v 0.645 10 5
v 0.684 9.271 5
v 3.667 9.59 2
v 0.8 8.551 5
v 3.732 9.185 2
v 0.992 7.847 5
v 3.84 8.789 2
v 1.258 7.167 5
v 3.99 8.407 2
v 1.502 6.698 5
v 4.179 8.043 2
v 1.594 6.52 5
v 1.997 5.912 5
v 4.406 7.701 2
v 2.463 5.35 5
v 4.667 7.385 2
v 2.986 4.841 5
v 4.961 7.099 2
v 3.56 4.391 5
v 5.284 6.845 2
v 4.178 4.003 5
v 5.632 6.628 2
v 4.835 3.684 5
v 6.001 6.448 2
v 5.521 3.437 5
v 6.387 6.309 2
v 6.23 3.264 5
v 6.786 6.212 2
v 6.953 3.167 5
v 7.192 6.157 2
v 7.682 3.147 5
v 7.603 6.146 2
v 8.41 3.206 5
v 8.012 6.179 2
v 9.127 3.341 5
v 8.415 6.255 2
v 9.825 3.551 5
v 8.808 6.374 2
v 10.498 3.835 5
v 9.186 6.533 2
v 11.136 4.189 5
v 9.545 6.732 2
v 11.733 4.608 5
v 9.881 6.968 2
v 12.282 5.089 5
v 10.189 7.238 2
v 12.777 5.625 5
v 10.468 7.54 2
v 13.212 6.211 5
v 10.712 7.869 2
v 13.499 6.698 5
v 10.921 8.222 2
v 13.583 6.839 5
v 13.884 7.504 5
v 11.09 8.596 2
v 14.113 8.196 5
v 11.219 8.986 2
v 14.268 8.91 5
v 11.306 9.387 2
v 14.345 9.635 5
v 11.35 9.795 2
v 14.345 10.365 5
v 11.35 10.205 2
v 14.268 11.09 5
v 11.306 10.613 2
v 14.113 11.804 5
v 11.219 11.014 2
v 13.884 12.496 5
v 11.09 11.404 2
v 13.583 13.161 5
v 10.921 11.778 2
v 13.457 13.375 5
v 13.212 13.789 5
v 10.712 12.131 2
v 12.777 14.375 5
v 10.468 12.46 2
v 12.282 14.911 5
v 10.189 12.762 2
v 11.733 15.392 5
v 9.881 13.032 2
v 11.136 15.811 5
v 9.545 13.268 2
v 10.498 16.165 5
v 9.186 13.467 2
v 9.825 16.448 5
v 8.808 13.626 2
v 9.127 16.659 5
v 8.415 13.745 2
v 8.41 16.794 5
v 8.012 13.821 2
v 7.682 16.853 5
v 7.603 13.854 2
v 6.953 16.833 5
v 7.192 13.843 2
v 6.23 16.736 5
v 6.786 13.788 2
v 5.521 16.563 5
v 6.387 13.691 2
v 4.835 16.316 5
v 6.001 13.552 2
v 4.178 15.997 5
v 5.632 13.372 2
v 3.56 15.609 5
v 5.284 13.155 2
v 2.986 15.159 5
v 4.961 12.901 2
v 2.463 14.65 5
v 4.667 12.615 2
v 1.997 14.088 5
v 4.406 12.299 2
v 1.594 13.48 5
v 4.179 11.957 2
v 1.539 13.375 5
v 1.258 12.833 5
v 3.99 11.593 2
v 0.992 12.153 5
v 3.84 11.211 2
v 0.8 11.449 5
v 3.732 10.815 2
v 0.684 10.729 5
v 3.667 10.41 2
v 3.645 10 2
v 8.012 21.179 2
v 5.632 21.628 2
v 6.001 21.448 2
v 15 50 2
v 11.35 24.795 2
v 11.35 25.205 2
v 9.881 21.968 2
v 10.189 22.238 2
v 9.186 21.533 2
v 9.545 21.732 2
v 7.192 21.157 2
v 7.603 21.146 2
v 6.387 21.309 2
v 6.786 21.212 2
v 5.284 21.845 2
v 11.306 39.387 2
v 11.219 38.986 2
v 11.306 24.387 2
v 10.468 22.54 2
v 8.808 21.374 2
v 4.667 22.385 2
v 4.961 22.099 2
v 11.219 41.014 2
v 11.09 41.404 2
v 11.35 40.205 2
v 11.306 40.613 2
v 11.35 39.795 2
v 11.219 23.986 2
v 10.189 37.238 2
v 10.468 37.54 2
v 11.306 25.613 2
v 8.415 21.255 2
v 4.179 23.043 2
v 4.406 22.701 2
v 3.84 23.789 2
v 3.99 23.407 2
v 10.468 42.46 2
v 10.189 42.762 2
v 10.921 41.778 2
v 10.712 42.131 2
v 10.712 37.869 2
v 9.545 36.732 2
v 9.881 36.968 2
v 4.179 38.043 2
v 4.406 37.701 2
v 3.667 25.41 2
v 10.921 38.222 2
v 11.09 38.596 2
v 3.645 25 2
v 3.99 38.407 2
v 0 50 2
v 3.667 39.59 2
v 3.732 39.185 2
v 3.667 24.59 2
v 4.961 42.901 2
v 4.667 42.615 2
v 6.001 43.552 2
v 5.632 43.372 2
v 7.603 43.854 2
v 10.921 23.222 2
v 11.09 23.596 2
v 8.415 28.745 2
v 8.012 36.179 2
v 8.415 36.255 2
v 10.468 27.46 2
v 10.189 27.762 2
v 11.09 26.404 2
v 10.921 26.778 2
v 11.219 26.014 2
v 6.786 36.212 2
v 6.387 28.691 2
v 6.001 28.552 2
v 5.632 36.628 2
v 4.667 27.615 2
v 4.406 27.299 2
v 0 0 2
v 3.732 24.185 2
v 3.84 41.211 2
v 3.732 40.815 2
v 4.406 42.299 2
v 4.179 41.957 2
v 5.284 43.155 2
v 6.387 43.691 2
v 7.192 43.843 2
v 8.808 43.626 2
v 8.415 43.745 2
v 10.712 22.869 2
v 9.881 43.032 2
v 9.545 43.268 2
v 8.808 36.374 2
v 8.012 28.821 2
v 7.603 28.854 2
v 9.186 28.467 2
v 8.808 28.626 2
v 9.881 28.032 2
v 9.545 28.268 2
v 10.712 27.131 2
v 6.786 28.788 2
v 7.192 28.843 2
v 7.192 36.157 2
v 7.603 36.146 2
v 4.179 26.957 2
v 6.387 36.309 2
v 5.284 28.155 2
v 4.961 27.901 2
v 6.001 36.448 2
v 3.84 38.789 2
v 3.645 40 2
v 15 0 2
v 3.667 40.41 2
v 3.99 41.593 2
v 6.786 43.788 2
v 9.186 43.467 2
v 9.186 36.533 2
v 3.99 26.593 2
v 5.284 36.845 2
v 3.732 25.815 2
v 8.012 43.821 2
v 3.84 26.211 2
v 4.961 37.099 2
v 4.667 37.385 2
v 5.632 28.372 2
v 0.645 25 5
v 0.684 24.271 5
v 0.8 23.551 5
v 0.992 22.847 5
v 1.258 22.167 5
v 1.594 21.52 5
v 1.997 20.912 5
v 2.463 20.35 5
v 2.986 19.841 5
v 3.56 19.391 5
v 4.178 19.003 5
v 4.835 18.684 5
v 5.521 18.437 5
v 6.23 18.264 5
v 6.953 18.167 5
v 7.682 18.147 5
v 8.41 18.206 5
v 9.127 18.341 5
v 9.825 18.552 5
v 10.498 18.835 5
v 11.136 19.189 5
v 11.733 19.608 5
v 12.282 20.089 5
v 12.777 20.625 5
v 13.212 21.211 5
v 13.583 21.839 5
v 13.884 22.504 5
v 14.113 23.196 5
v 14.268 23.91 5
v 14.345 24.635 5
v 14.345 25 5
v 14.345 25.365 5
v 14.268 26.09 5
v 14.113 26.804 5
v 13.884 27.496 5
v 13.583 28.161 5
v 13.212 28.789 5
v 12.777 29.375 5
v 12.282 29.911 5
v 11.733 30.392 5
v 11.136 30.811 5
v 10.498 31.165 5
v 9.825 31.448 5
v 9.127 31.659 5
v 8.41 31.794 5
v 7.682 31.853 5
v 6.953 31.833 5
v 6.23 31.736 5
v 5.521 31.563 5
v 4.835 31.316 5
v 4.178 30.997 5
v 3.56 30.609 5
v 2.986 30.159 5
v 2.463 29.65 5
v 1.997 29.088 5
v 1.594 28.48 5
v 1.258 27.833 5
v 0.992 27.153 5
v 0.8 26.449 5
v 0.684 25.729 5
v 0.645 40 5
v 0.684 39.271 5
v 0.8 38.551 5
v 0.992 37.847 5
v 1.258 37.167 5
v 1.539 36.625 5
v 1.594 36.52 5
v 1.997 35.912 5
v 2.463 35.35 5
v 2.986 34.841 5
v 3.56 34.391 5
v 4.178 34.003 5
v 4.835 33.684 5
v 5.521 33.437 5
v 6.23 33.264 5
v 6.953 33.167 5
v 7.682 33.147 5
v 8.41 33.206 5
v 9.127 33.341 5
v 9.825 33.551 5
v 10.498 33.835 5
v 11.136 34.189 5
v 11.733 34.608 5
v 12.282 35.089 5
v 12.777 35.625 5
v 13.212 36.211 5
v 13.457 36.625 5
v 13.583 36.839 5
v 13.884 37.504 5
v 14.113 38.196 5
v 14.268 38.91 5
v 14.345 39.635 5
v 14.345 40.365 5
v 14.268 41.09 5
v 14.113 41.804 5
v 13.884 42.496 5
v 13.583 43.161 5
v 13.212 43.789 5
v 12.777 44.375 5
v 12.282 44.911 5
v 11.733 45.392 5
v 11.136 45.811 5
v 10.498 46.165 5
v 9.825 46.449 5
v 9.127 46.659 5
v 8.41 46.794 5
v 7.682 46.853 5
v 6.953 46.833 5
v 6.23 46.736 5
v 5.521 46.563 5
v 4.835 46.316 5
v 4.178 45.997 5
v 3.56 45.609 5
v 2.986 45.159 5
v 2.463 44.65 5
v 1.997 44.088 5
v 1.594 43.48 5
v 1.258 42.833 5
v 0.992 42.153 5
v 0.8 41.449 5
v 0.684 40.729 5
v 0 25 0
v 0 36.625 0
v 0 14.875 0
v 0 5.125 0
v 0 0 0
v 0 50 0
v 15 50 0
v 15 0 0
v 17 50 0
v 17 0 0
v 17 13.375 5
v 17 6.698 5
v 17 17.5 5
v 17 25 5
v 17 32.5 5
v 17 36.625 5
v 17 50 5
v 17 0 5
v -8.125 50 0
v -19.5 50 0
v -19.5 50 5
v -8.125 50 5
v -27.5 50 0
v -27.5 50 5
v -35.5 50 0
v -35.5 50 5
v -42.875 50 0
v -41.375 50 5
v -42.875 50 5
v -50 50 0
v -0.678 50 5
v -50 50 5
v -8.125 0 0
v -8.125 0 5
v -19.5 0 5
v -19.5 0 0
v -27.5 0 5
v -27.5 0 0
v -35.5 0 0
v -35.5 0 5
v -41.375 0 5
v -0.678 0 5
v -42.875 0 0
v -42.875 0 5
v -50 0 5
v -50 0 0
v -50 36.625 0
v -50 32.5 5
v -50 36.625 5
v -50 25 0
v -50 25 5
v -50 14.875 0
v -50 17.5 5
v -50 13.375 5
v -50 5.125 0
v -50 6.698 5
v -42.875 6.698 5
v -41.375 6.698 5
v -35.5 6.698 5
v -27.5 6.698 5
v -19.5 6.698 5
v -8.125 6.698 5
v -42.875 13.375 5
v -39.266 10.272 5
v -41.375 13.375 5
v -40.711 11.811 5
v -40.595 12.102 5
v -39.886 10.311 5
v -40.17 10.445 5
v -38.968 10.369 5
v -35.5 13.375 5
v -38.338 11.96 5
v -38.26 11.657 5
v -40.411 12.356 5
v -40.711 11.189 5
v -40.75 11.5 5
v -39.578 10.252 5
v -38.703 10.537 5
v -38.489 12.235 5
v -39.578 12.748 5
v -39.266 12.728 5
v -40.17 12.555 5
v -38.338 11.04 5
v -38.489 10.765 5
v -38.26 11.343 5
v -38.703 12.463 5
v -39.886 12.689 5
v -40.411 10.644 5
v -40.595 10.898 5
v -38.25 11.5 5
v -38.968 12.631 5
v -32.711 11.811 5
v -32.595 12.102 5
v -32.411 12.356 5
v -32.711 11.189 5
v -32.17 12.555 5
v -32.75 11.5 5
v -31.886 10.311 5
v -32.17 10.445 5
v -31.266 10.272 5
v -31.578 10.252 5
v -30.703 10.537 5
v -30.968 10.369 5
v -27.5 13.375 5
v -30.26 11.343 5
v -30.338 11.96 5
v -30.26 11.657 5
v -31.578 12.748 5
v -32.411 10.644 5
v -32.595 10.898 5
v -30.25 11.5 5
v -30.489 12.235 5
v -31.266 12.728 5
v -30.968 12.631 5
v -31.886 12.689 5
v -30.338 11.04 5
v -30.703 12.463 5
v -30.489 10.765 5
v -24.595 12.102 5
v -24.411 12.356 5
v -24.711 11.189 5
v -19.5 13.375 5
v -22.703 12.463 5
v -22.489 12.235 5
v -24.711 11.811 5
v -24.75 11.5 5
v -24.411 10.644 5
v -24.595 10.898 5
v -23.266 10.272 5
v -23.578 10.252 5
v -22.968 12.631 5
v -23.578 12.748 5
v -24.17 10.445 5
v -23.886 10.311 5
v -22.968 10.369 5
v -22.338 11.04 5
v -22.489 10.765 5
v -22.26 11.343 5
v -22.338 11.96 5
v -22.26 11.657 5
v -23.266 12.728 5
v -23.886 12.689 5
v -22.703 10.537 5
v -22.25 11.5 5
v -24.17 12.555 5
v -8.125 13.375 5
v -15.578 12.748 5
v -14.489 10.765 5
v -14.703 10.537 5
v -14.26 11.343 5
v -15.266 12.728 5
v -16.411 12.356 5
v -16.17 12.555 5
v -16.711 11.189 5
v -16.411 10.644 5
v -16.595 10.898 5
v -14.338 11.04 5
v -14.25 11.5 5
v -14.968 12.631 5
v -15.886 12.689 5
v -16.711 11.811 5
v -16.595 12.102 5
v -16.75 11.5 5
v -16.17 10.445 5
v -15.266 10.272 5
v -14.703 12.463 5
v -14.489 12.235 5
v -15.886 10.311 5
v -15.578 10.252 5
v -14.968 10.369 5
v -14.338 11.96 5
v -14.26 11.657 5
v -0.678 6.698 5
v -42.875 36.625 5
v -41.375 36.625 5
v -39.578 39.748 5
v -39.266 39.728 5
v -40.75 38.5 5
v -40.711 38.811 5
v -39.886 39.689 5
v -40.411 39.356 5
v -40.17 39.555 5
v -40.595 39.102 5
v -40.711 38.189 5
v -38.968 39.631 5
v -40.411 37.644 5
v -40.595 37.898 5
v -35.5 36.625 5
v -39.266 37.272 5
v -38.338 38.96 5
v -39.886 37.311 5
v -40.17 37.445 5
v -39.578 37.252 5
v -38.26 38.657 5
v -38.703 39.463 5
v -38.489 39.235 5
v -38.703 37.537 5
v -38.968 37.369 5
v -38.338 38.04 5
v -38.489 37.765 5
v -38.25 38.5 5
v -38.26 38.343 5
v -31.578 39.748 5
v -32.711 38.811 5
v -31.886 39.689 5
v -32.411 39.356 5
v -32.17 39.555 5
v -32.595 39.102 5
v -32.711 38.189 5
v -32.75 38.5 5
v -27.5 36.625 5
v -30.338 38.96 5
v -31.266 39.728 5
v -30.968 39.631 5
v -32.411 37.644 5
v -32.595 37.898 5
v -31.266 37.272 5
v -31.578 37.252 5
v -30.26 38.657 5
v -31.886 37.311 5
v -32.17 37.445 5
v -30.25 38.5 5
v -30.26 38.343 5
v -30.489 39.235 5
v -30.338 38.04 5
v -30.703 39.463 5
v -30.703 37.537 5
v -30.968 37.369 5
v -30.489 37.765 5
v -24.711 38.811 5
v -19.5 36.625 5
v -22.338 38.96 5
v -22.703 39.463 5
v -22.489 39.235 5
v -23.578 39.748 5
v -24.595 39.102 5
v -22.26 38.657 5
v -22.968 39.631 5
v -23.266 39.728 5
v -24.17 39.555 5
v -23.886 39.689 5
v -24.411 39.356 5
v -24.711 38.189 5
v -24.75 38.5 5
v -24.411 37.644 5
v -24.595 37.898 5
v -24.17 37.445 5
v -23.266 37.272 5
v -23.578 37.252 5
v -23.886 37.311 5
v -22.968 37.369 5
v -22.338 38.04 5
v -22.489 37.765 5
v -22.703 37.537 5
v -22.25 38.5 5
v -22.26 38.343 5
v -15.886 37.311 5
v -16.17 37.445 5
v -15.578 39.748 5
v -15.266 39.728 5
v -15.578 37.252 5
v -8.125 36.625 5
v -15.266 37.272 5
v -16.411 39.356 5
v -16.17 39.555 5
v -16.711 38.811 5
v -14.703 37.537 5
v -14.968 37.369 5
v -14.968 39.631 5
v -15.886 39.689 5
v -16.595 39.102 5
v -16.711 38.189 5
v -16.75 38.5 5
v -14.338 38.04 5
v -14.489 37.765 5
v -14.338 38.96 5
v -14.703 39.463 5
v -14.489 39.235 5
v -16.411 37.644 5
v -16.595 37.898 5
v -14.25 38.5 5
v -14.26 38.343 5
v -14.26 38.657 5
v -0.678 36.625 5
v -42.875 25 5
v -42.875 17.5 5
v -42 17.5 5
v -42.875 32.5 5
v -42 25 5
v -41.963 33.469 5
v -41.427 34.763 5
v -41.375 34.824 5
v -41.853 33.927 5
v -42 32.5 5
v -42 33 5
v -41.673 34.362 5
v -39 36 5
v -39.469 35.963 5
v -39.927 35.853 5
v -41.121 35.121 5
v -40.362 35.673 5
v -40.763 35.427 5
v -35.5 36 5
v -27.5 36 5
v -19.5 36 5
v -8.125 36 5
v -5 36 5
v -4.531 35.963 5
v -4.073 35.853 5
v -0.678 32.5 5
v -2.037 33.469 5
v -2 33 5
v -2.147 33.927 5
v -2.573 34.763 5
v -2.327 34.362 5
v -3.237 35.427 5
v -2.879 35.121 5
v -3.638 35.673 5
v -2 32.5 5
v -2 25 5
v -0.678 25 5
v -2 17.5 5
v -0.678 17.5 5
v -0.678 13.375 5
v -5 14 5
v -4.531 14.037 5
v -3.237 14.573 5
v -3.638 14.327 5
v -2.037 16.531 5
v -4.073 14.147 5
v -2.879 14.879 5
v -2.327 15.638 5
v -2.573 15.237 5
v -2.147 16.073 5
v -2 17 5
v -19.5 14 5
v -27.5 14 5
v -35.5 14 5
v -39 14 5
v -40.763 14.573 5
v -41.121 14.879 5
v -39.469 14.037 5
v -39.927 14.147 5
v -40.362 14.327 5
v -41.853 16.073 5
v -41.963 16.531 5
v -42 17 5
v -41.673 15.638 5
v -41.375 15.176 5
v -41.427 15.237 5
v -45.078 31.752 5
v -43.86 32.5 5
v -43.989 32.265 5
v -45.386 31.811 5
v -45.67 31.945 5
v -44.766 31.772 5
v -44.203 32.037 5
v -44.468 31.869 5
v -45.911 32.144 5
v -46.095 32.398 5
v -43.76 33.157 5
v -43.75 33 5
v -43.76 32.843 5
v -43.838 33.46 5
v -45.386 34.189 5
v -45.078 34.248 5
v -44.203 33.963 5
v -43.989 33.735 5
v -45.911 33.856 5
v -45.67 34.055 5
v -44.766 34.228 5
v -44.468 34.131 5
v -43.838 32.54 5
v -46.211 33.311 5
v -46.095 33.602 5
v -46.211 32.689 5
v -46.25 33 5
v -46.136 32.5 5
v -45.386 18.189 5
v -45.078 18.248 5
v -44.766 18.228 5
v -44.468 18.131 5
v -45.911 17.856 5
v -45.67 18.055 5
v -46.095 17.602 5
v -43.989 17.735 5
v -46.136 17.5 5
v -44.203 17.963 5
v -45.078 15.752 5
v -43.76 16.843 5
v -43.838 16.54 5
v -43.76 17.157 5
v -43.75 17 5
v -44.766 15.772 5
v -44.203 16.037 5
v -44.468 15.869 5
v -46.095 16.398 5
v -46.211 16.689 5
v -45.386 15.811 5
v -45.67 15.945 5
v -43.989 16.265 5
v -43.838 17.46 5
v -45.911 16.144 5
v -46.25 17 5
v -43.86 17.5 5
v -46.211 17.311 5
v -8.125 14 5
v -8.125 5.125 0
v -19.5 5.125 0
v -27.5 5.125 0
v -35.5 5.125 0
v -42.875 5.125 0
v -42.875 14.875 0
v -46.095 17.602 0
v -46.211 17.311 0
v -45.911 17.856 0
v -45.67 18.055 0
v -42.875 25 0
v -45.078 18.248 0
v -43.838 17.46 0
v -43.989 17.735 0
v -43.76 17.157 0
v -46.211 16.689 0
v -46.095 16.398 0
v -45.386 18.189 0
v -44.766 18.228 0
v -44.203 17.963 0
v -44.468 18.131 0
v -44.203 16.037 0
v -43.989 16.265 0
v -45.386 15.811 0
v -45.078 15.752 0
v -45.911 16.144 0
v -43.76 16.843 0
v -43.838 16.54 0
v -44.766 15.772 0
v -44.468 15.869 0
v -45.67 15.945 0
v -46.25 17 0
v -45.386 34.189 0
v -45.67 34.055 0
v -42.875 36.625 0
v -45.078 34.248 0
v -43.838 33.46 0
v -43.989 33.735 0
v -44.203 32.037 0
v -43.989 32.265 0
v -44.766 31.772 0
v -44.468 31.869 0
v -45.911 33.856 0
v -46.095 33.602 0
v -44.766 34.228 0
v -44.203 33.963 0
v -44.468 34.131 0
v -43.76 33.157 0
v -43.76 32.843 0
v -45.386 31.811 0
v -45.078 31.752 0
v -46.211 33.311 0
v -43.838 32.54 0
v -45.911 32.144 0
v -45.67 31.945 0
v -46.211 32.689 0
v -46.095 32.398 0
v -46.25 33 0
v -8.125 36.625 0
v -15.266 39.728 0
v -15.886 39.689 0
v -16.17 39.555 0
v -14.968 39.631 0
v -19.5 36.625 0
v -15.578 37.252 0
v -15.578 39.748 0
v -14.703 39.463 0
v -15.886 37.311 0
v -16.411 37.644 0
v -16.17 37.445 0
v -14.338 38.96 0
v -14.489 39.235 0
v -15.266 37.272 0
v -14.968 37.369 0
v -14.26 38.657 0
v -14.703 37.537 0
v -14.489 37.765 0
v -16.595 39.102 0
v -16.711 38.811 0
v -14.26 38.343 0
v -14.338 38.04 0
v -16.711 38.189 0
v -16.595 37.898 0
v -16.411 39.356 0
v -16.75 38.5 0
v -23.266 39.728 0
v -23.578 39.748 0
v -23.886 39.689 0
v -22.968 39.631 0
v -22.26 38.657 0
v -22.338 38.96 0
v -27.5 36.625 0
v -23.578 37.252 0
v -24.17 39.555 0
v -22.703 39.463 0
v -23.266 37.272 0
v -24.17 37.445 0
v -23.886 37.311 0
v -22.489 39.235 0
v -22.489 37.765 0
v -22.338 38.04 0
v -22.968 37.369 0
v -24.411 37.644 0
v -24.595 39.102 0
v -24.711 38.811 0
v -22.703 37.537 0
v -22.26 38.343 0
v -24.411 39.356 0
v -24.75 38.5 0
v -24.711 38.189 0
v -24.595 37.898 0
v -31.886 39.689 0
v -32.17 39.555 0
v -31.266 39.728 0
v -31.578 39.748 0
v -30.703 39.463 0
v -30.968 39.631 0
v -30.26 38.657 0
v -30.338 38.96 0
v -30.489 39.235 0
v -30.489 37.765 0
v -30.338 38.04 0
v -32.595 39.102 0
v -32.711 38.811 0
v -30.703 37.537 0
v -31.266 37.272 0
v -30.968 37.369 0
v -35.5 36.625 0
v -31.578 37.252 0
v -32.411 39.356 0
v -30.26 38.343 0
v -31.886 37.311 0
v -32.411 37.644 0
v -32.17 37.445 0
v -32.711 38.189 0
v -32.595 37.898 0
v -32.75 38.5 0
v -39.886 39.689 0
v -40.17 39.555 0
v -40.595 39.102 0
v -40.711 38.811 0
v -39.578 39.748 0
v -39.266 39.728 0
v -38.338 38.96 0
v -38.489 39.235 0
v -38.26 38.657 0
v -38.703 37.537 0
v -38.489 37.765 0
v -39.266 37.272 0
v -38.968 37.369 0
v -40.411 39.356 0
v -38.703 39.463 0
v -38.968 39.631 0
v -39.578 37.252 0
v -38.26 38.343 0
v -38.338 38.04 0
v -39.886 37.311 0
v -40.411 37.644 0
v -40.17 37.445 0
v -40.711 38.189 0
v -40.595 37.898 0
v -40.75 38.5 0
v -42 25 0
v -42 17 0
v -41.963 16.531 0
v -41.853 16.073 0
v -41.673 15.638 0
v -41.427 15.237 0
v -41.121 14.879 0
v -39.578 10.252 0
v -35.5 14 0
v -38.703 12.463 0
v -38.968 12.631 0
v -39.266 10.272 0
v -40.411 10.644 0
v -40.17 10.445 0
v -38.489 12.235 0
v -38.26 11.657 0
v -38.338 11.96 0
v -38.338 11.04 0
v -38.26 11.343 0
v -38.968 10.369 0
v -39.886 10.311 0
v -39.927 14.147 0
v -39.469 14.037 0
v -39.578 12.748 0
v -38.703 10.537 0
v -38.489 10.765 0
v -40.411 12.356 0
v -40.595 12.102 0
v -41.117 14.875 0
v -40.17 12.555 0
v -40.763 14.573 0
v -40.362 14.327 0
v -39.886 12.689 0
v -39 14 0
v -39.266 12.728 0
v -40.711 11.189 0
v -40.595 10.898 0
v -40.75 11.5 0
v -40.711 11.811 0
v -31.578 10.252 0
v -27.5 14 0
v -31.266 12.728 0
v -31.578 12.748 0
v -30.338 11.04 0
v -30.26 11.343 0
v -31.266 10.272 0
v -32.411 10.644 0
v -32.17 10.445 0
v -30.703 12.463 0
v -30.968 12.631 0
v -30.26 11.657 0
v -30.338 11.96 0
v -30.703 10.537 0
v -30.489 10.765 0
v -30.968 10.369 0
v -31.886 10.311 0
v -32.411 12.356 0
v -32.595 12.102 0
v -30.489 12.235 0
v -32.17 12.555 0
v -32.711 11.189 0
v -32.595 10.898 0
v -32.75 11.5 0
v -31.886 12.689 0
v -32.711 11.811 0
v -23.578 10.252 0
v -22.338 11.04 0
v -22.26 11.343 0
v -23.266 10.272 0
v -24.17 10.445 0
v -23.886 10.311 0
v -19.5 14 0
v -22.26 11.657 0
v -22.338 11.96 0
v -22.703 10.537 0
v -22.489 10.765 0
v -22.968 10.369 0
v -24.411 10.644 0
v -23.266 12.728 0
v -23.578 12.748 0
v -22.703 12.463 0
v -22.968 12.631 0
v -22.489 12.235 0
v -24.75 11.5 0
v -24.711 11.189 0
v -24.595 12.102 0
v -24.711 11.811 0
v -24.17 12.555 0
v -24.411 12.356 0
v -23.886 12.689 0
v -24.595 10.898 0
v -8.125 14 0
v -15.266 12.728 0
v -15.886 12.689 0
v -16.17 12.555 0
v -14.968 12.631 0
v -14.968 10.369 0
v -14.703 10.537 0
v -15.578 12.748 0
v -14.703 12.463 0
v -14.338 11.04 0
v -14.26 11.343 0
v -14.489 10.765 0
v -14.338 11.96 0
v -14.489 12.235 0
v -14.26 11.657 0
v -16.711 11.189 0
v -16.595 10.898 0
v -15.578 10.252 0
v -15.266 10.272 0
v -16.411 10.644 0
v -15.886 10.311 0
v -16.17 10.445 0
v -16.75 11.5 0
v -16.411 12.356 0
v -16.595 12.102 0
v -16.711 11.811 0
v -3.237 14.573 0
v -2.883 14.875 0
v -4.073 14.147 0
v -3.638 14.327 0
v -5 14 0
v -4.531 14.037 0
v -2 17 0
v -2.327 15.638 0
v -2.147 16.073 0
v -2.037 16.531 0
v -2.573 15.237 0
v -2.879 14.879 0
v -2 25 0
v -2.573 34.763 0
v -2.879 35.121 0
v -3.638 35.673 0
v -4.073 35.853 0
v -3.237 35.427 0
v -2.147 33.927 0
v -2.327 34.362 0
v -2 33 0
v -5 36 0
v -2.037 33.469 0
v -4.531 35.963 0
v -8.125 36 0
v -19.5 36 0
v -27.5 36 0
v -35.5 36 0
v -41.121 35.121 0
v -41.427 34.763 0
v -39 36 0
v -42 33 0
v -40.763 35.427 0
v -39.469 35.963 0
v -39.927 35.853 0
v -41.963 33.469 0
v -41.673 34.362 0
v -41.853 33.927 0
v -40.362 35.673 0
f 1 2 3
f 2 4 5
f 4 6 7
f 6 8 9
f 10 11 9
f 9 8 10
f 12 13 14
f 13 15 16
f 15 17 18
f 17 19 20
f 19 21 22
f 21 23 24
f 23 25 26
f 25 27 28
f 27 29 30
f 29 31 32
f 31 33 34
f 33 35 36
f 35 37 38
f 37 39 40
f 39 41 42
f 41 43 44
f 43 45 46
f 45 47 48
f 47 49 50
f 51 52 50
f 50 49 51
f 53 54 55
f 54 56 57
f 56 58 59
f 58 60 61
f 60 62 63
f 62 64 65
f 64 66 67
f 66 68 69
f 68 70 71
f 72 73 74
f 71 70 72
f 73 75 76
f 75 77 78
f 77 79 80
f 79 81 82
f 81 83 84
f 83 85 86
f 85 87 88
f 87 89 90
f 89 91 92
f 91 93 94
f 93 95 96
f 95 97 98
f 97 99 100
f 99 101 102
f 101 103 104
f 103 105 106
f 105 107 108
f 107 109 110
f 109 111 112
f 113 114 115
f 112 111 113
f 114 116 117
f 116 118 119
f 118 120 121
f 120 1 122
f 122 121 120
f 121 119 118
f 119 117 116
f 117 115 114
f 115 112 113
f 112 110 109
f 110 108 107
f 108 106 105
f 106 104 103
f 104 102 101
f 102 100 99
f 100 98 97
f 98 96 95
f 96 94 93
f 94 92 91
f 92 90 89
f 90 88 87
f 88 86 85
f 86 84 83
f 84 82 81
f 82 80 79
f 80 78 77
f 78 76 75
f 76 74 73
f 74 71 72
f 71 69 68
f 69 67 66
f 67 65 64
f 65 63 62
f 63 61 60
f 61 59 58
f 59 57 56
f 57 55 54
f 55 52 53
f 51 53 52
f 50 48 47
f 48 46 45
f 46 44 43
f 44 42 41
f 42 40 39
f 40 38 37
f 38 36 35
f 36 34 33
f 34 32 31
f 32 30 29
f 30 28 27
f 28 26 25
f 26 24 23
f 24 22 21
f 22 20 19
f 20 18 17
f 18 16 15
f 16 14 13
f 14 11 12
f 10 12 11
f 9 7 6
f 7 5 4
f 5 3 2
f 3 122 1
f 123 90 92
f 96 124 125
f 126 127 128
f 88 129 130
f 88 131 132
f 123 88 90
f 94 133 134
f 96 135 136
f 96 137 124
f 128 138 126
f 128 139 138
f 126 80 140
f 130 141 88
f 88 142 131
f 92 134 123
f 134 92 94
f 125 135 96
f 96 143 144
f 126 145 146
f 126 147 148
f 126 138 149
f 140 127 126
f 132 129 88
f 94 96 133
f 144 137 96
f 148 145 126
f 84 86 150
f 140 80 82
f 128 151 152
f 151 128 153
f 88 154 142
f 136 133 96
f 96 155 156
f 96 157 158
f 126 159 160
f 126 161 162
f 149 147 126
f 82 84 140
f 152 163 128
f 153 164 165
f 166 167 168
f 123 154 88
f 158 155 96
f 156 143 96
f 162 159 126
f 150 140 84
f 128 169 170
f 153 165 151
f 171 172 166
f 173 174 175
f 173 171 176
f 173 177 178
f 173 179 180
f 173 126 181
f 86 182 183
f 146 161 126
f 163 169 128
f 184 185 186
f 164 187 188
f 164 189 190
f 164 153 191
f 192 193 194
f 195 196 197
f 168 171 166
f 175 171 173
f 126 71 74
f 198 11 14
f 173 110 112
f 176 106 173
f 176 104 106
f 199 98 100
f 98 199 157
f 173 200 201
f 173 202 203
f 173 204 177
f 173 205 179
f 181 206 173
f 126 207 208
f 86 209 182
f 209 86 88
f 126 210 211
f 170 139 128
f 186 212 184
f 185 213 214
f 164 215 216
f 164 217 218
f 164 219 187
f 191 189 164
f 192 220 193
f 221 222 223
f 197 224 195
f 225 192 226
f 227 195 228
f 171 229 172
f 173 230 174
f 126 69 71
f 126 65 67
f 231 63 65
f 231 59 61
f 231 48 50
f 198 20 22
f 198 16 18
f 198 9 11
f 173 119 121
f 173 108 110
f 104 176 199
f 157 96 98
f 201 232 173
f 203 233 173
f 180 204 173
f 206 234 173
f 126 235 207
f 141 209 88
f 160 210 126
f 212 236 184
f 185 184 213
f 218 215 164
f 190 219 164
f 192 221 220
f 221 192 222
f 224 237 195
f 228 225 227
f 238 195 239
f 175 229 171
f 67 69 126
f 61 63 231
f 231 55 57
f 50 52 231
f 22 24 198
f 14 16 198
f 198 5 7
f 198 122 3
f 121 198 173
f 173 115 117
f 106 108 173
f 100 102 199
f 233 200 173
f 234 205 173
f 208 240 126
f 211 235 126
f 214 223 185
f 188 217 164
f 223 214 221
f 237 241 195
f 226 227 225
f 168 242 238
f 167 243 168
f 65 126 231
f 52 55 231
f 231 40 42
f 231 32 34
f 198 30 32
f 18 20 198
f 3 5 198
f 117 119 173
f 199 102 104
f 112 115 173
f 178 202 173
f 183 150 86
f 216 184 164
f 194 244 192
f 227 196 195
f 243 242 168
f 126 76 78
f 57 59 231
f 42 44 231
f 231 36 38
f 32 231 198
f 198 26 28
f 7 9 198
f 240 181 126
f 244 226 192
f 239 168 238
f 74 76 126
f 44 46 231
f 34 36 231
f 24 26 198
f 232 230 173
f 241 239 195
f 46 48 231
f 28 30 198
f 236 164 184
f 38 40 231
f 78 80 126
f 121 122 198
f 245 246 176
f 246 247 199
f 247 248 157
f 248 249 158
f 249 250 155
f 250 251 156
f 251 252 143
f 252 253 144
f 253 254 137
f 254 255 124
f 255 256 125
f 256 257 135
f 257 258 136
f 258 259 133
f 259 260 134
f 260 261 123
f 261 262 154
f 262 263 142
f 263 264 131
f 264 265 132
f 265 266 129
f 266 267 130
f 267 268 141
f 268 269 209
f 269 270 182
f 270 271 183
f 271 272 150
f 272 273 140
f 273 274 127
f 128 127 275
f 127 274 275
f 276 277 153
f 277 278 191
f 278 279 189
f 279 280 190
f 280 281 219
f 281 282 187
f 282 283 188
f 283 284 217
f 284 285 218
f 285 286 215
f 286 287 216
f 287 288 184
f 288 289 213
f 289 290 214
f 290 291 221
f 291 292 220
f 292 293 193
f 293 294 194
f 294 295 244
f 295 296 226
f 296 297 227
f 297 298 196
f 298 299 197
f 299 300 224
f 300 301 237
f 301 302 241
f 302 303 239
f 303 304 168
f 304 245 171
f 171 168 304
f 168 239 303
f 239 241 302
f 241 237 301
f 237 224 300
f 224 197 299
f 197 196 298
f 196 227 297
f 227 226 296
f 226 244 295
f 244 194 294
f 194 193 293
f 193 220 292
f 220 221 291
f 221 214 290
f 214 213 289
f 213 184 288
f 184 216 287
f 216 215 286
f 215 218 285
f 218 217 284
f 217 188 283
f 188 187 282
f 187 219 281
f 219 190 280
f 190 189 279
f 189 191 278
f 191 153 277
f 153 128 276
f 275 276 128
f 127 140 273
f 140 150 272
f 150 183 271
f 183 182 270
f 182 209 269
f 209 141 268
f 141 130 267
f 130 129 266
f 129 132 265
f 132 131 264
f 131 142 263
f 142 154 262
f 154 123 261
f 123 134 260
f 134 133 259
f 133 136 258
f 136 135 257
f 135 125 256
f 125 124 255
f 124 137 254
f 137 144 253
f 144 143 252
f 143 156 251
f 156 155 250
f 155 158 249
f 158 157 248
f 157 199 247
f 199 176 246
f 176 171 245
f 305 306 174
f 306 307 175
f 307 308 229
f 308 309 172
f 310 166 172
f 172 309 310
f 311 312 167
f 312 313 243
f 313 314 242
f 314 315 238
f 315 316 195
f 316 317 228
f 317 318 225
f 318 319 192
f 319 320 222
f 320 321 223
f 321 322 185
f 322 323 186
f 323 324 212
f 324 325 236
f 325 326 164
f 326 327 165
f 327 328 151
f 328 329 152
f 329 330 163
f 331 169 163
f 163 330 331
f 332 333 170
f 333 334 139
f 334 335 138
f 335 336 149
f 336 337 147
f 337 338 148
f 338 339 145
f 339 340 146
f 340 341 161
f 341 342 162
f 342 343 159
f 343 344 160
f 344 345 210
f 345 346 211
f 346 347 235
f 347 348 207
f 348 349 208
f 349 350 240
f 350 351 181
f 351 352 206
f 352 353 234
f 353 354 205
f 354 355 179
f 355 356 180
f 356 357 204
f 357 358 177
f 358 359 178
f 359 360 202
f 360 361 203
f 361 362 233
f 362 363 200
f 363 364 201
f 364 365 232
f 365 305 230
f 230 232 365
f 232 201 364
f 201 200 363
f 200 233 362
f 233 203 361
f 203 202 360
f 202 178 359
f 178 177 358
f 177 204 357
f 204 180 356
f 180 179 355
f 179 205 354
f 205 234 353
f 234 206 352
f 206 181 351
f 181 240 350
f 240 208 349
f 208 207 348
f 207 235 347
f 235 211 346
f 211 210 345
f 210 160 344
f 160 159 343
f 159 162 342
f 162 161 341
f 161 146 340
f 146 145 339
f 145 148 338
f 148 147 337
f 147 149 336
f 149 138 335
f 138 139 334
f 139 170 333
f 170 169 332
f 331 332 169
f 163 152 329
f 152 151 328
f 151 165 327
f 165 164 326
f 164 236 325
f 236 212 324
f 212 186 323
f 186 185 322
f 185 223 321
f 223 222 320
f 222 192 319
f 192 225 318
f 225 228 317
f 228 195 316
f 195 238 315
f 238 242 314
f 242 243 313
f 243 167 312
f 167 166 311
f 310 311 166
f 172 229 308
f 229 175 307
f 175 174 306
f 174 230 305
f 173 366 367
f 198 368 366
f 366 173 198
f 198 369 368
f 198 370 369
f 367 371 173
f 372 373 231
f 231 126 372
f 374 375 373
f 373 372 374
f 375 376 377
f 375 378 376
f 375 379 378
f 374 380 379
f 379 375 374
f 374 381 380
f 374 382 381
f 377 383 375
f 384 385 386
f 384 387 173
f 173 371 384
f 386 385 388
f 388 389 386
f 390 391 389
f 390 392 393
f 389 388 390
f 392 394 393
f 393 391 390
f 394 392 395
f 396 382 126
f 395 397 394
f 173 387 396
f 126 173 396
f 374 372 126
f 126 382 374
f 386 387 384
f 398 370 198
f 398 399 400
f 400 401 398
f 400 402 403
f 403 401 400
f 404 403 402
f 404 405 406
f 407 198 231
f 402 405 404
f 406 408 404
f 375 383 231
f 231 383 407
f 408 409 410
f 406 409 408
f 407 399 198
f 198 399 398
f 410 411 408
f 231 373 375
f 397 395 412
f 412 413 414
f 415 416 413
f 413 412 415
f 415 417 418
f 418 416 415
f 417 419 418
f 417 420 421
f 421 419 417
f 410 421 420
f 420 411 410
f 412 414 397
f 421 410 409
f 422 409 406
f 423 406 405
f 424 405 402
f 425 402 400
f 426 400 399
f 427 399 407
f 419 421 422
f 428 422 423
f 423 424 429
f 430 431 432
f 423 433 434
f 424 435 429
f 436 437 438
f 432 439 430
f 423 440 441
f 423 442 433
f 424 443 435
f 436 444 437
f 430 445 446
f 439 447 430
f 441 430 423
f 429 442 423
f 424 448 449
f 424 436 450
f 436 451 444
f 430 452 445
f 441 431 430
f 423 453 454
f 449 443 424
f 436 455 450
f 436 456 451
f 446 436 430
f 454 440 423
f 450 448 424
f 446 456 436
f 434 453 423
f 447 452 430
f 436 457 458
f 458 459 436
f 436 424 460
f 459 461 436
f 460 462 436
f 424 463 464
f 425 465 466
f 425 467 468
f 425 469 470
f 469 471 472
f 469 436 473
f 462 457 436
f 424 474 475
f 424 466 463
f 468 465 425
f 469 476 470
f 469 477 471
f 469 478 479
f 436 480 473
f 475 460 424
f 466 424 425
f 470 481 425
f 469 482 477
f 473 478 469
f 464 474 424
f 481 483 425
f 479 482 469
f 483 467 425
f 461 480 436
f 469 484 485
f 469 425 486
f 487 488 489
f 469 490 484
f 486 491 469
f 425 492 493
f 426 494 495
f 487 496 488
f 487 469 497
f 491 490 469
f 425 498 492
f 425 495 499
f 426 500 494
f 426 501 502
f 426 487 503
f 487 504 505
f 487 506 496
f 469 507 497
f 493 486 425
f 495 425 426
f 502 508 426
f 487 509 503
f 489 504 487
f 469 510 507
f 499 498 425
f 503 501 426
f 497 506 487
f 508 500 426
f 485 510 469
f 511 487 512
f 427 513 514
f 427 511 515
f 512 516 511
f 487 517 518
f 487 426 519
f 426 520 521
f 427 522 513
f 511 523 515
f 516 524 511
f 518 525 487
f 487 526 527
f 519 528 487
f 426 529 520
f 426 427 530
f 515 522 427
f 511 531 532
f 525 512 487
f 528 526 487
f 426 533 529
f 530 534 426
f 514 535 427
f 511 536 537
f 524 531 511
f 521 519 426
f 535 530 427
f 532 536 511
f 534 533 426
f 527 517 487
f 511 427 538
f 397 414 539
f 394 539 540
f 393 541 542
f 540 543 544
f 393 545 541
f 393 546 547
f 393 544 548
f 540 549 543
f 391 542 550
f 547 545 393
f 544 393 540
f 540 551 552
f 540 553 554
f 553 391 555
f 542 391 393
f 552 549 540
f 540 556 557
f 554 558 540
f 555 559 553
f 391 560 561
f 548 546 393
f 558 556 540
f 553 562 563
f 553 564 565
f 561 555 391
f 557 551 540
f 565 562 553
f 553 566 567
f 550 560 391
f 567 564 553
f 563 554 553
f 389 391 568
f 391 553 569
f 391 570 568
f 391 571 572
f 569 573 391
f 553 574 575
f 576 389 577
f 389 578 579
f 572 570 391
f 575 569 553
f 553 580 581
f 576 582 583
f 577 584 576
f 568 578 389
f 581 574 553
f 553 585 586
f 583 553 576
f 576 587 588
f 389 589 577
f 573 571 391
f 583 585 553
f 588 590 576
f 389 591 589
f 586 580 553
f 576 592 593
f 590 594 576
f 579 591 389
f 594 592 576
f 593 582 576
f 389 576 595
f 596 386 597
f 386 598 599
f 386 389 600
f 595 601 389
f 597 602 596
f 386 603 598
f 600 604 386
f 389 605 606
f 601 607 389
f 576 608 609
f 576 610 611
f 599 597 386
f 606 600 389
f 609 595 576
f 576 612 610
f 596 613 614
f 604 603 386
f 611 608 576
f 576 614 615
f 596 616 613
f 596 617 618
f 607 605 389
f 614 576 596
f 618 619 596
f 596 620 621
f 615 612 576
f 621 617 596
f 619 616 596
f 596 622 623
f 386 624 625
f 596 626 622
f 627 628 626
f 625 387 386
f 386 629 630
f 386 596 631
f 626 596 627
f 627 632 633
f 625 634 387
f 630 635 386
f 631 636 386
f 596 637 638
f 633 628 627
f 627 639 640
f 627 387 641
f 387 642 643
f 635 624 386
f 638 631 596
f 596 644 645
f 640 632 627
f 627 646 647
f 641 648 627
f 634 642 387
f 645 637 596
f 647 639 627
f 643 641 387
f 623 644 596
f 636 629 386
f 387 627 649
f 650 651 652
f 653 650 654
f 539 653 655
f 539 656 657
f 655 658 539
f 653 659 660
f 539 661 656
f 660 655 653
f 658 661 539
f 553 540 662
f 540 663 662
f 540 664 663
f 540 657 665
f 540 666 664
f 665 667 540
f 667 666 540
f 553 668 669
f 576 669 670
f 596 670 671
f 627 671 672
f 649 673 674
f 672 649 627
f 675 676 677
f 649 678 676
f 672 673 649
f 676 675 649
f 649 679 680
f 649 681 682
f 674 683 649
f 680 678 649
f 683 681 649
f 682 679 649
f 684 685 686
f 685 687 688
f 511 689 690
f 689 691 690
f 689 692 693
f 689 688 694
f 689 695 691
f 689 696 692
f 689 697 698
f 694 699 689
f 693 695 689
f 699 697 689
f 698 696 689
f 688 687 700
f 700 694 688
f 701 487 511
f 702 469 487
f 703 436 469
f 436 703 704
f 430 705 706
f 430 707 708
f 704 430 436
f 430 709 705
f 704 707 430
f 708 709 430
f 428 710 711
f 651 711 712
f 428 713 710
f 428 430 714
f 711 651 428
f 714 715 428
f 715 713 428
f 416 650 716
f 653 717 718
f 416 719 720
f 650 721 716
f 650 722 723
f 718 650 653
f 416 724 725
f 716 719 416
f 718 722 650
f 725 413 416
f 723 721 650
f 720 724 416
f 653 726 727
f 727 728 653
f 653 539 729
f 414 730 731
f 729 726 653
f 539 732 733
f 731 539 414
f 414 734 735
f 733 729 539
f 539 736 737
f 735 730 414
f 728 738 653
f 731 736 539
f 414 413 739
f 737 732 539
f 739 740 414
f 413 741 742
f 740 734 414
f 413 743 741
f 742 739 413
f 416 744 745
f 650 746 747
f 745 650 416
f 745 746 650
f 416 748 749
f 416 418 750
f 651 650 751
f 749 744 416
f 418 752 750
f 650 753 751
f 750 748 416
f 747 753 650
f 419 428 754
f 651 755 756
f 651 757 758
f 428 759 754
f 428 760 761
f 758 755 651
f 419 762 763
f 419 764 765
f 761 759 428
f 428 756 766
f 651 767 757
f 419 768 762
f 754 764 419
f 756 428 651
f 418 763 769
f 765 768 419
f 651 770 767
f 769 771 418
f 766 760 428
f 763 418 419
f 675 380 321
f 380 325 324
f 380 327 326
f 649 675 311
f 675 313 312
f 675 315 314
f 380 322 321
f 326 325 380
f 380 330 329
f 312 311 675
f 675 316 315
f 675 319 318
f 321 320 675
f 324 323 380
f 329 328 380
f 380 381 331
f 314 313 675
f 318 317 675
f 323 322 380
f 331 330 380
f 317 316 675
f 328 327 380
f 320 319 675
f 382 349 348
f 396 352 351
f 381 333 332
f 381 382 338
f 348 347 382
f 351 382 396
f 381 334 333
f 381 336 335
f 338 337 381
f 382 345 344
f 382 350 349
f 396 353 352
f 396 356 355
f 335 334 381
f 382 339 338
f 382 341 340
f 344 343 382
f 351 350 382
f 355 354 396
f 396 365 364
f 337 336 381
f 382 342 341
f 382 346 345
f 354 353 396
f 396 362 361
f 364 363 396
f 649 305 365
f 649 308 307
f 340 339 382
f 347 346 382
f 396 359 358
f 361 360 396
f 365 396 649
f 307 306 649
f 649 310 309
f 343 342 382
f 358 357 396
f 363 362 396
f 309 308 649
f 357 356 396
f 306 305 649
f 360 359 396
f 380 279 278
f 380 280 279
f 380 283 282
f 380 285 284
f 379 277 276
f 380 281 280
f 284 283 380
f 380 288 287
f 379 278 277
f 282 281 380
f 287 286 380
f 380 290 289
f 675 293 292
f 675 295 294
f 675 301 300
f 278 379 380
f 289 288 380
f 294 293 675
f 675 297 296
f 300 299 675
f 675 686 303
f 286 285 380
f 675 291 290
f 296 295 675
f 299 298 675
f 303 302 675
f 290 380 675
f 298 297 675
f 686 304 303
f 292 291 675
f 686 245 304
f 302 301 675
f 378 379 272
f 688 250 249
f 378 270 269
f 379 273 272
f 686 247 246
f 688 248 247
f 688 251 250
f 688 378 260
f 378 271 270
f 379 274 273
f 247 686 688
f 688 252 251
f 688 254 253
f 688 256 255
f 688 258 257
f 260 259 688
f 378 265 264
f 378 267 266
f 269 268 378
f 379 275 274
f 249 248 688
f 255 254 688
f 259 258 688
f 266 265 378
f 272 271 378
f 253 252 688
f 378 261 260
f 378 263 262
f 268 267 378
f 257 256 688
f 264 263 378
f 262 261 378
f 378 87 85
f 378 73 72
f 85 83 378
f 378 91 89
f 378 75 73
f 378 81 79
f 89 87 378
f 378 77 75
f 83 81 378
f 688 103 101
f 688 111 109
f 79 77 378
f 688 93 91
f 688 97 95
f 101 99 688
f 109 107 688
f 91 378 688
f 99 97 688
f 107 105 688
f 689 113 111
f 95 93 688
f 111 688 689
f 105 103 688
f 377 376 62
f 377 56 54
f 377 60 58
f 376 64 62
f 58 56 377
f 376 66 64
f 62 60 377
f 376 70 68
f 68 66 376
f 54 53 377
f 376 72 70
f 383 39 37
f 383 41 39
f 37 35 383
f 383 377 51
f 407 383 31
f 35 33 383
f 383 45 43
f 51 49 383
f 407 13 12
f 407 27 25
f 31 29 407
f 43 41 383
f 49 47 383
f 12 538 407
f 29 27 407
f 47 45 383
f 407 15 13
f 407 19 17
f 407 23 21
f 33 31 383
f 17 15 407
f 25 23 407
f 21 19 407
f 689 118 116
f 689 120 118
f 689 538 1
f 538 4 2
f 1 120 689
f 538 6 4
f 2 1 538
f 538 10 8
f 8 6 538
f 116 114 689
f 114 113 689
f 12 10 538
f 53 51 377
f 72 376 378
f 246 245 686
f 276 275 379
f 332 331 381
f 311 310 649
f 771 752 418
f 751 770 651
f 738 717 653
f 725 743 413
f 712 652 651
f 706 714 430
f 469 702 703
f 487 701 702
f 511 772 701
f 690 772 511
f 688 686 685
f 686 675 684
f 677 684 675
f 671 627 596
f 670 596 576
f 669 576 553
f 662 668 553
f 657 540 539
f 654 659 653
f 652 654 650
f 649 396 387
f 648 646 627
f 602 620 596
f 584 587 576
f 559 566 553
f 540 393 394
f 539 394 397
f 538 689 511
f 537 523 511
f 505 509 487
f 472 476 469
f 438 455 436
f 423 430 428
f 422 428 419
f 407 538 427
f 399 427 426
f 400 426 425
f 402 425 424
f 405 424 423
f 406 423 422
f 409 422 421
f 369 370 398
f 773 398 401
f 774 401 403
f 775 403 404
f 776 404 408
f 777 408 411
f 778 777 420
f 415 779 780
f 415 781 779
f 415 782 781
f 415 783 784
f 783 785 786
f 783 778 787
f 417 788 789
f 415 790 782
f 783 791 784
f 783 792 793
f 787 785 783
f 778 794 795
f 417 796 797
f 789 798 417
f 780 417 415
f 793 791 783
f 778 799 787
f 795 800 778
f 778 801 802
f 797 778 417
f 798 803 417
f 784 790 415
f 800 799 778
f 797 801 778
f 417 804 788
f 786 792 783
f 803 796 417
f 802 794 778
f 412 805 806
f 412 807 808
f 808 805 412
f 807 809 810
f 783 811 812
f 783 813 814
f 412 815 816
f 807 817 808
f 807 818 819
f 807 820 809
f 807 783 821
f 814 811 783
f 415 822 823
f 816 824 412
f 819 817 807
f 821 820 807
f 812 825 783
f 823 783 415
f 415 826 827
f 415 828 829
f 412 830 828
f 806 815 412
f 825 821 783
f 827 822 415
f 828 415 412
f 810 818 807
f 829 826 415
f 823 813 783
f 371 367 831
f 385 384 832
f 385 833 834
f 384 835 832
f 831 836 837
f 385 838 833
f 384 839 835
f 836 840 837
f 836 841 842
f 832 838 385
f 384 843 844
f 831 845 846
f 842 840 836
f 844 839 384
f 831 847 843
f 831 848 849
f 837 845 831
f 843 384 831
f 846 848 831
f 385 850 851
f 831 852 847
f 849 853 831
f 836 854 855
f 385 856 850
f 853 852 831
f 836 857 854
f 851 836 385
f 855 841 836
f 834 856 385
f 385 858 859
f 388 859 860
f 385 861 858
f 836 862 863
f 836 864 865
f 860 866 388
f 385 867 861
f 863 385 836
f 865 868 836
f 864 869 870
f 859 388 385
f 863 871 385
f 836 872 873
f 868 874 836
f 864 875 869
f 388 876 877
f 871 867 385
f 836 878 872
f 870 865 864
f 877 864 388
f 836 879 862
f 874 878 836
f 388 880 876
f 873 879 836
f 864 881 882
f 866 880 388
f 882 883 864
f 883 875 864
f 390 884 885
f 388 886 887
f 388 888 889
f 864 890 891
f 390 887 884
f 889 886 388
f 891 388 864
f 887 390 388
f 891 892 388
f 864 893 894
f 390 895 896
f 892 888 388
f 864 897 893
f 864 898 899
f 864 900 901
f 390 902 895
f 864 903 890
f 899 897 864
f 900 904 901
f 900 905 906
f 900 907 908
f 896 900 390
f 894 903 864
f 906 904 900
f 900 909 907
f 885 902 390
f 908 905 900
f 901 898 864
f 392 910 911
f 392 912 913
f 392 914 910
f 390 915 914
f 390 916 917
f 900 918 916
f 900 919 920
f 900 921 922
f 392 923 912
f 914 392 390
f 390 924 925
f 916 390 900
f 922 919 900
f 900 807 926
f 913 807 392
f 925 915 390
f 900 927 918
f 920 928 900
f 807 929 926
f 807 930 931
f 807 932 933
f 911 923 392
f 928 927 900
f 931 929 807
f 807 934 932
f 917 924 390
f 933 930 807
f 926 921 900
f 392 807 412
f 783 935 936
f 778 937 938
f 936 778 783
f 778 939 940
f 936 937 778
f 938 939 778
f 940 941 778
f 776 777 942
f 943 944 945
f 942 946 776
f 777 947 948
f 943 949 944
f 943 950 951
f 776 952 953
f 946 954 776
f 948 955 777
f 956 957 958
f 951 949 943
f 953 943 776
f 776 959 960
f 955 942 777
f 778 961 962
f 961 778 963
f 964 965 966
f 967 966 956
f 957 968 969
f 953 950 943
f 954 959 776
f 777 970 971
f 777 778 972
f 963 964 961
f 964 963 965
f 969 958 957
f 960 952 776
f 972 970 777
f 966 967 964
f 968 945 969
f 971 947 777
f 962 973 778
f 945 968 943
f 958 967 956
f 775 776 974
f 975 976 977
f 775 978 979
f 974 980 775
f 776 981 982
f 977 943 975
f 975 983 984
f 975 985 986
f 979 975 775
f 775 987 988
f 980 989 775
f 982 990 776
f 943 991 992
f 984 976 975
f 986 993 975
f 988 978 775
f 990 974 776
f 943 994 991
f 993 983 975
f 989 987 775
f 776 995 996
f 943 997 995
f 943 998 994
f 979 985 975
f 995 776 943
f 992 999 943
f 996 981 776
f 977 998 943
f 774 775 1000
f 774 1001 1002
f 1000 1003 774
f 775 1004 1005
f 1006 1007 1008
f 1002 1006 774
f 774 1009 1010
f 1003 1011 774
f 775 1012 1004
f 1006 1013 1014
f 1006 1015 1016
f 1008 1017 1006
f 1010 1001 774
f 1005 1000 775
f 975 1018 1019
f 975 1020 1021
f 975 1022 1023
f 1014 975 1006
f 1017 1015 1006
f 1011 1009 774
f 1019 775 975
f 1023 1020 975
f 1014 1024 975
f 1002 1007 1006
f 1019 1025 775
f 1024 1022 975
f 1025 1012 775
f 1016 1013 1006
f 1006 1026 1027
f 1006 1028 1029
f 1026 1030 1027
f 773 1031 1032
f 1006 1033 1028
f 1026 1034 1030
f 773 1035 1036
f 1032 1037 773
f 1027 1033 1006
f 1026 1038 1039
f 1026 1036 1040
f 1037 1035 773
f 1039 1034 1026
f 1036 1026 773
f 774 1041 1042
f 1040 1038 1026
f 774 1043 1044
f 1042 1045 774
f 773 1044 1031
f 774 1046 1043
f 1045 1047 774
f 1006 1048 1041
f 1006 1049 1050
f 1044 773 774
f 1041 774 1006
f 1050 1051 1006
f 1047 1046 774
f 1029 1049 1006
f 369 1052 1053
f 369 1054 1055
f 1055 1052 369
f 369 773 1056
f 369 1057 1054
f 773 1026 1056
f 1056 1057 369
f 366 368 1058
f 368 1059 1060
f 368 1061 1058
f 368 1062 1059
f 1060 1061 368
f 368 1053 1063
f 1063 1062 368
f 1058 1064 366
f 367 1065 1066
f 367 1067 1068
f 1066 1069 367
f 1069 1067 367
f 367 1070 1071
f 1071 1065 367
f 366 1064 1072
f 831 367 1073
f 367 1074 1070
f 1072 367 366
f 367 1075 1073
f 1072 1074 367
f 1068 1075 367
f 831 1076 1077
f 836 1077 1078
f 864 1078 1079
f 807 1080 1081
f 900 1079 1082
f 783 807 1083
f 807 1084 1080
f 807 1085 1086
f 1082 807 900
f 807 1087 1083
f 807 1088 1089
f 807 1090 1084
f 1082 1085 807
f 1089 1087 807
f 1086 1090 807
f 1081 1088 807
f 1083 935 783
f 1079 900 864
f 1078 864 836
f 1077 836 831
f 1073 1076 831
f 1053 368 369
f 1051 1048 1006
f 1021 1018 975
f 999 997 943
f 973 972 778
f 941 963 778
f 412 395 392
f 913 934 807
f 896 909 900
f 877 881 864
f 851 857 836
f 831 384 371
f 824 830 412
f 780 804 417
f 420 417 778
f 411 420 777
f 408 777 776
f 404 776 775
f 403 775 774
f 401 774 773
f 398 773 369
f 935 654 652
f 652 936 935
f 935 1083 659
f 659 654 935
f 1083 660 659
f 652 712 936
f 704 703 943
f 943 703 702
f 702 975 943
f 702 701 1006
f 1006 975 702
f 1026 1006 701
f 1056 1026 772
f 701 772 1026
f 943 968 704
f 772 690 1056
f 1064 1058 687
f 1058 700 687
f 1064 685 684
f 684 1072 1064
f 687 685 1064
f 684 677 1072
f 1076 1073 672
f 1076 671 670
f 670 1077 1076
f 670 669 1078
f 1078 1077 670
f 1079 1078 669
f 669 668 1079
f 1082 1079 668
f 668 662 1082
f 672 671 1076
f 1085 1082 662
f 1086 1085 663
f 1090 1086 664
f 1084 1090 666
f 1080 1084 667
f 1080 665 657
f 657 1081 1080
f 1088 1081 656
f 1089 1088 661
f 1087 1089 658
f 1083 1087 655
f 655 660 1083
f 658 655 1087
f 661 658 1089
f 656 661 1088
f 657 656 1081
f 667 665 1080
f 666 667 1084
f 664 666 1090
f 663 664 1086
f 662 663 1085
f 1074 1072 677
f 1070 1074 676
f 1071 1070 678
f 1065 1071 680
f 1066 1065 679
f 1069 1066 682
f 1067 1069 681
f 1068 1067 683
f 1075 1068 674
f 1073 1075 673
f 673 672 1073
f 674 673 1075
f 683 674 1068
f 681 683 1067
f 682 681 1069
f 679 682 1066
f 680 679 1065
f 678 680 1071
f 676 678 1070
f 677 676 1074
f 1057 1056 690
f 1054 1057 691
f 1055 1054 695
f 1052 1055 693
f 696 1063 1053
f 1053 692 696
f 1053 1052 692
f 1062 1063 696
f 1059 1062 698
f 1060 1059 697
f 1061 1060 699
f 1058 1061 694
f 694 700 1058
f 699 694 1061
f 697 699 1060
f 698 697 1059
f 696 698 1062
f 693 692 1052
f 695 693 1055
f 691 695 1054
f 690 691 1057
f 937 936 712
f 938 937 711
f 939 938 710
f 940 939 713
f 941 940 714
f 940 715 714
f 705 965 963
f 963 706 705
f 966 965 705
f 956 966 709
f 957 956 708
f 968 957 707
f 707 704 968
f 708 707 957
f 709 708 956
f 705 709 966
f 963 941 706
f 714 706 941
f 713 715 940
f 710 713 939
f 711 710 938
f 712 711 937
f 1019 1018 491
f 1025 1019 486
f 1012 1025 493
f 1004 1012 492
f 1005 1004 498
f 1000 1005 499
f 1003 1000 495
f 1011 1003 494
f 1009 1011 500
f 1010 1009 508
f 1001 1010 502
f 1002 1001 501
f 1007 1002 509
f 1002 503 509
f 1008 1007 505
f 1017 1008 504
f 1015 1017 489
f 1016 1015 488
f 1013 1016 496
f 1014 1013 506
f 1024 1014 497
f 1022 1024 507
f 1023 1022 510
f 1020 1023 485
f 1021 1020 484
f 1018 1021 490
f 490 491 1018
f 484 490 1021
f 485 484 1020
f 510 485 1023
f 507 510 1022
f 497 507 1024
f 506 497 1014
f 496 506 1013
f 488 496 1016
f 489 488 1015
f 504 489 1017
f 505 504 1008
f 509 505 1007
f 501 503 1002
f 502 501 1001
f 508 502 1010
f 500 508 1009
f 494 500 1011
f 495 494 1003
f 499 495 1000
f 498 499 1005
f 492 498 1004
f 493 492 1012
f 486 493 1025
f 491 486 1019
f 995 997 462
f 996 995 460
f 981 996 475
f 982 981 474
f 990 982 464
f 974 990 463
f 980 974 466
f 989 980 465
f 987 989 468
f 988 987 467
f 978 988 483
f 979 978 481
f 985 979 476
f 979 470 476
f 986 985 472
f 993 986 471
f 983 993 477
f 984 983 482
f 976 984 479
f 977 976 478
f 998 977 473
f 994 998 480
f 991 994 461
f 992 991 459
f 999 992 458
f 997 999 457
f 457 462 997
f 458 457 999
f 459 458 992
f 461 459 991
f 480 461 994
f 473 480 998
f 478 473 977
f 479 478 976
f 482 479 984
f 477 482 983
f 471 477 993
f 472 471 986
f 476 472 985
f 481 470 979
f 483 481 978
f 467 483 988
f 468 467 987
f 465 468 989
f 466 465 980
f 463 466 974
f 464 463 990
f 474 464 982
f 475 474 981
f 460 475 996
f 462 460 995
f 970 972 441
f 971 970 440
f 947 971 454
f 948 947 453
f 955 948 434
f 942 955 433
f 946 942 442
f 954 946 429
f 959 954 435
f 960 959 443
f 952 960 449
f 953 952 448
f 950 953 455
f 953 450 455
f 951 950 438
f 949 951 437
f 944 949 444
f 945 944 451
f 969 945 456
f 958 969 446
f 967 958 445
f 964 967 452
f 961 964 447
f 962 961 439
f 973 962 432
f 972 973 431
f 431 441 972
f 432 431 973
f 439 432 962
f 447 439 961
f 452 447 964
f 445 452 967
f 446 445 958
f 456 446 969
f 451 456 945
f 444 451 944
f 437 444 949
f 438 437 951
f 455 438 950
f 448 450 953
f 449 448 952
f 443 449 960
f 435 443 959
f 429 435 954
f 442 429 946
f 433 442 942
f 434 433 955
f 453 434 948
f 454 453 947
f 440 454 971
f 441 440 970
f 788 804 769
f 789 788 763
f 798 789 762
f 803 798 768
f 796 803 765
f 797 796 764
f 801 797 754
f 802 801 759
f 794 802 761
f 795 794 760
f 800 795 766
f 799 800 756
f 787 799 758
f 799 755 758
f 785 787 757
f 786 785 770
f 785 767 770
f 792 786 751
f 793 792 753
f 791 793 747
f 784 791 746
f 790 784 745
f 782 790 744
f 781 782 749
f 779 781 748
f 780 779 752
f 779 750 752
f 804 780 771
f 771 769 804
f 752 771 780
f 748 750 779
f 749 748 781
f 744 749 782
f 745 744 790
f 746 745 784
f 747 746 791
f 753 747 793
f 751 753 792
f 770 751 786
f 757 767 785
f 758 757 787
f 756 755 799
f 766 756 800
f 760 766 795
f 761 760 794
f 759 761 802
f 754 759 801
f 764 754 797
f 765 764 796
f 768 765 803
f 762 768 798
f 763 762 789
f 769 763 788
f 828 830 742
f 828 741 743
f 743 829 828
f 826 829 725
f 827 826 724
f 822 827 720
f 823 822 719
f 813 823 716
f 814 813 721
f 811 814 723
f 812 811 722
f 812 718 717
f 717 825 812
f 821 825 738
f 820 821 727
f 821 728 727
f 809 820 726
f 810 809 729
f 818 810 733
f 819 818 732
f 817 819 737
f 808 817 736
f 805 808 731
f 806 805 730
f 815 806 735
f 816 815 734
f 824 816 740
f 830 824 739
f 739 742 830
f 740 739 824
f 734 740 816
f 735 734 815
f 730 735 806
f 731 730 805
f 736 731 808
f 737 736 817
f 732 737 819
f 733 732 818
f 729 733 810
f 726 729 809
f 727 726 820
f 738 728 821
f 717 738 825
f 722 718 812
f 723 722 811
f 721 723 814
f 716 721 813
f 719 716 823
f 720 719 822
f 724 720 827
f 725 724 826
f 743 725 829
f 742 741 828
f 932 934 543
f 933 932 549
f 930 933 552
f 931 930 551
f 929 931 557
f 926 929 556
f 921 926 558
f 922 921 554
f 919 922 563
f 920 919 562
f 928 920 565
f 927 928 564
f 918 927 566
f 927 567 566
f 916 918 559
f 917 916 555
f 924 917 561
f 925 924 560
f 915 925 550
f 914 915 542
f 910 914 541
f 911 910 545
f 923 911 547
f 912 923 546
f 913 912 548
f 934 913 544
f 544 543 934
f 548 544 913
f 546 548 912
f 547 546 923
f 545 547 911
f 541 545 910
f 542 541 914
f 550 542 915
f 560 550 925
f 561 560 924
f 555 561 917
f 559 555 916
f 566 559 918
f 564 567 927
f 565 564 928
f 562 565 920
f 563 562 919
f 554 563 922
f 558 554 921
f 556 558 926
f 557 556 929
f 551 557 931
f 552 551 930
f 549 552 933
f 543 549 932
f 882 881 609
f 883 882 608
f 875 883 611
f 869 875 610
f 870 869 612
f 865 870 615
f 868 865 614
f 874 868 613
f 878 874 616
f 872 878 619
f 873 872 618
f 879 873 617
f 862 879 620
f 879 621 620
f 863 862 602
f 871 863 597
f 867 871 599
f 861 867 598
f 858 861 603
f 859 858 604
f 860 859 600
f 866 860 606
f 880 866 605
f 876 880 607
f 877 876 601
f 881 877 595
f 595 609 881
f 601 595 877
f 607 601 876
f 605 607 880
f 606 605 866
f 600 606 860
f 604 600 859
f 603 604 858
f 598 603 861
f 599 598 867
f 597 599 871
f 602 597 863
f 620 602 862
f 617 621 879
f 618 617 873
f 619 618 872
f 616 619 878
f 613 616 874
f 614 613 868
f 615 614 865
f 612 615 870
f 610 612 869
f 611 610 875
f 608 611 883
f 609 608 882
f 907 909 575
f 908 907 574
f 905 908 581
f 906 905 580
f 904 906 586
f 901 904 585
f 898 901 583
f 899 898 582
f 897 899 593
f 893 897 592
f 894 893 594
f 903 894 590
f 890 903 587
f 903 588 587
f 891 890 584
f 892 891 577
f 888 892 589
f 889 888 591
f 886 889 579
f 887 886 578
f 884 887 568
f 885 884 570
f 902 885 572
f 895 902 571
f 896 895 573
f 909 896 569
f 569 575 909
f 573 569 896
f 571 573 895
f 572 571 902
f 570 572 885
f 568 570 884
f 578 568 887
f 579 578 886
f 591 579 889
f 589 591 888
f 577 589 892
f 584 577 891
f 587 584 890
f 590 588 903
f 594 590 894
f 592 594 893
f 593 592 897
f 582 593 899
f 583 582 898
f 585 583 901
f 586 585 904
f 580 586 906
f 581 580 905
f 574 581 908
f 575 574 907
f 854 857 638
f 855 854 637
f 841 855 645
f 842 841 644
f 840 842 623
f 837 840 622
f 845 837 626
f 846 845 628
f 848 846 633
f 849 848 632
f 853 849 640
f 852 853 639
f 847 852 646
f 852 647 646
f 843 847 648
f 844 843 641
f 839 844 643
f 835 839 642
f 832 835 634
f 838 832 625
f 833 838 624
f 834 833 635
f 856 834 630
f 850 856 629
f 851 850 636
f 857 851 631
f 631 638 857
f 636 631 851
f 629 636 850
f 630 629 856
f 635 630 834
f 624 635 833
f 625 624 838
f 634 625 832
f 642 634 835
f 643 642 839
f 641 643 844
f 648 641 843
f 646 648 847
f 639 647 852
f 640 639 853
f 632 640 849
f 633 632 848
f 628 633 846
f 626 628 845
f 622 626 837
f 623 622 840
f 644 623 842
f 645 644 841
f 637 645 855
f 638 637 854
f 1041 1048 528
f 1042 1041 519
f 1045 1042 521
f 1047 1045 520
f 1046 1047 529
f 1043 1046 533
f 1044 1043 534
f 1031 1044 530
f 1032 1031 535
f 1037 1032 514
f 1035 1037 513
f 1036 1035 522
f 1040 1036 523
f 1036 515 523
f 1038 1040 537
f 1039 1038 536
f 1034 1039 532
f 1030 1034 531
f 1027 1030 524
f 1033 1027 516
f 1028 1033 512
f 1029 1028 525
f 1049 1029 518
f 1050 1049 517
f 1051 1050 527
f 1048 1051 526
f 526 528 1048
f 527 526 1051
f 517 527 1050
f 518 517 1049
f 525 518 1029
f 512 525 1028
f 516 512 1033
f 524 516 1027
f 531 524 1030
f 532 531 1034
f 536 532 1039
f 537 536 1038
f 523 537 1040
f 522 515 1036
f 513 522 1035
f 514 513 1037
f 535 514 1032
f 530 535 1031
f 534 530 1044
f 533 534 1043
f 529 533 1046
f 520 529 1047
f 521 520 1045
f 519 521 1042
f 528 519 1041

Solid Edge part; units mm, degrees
sketch "Sketch1" plane through (0, 0, 0) normal (0, -1, 0) x (1, 0, 0)
  line L0 (-50, 0) -> (0, 0)
  line L1 (0, 0) -> (0, 2)
  line L2 (0, 2) -> (15, 2)
  line L3 (15, 2) -> (15, 0)
  line L4 (15, 0) -> (17, 0)
  line L5 (17, 0) -> (17, 5)
  line L6 (17, 5) -> (-50, 5)
  line L7 (-50, 5) -> (-50, 0)
  dimension "D1" = 67
  dimension "D2" = 2
  dimension "D3" = 2
  dimension "D4" = 5
extrude "Protrusion1" add sketch "Sketch1" against normal blind 50
hole "Agujero_1" at (7.5, 10, 5) direction (0, 0, -1) diameter 6.4 end up to next countersink diameter 13.71 countersink angle 90
hole "Hole1" at (7.5, 25, 5) direction (0, 0, -1) diameter 6.4 end up to next countersink diameter 13.71 countersink angle 90
hole "Hole2" at (7.5, 40, 5) direction (0, 0, -1) diameter 6.4 end up to next countersink diameter 13.71 countersink angle 90
sketch "Sketch2" plane through (-25, 25, 0) normal (0, 0, -1) x (-1, 0, 0)
  circle A0 centre (-1.5, -13.5) radius 1.25
  circle A1 centre (6.5, -13.5) radius 1.25
  circle A2 centre (14.5, -13.5) radius 1.25
  circle A3 centre (20, -8) radius 1.25
  circle A4 centre (20, 8) radius 1.25
  circle A5 centre (14.5, 13.5) radius 1.25
  circle A6 centre (-1.5, 13.5) radius 1.25
  circle A7 centre (6.5, 13.5) radius 1.25
  circle A8 centre (-9.5, 13.5) radius 1.25
  circle A9 centre (-9.5, -13.5) radius 1.25
  dimension "D1" = 27
  dimension "D2" = 8
  dimension "D3" = 8
  dimension "D4" = 8
  dimension "D5" = 5.5
  dimension "D6" = 16
  dimension "D7" = 5
  dimension "D8" = 2.5
extrude "Cutout1" cut sketch "Sketch2" against normal up to next
sketch "Sketch3" plane through (-16.5, 25, 5) normal (0, 0, 1) x (1, 0, 0)
  line L0 (-25.5, -11) -> (14.5, -11)
  line L1 (14.5, -11) -> (14.5, 11)
  line L2 (14.5, 11) -> (-25.5, 11)
  line L3 (-25.5, 11) -> (-25.5, -11)
  dimension "D1" = 22
  dimension "D2" = 40
  dimension "D3" = 8
extrude "Cutout2" cut sketch "Sketch3" against normal up to next
fillet "Redondeo_1" radius 3 4 edges at (-42, 36, 2.5) (-42, 14, 2.5) (-2, 14, 2.5) (-2, 36, 2.5)
properties part number "1976-1400-002" material "Aluminio, 7075-T6"
